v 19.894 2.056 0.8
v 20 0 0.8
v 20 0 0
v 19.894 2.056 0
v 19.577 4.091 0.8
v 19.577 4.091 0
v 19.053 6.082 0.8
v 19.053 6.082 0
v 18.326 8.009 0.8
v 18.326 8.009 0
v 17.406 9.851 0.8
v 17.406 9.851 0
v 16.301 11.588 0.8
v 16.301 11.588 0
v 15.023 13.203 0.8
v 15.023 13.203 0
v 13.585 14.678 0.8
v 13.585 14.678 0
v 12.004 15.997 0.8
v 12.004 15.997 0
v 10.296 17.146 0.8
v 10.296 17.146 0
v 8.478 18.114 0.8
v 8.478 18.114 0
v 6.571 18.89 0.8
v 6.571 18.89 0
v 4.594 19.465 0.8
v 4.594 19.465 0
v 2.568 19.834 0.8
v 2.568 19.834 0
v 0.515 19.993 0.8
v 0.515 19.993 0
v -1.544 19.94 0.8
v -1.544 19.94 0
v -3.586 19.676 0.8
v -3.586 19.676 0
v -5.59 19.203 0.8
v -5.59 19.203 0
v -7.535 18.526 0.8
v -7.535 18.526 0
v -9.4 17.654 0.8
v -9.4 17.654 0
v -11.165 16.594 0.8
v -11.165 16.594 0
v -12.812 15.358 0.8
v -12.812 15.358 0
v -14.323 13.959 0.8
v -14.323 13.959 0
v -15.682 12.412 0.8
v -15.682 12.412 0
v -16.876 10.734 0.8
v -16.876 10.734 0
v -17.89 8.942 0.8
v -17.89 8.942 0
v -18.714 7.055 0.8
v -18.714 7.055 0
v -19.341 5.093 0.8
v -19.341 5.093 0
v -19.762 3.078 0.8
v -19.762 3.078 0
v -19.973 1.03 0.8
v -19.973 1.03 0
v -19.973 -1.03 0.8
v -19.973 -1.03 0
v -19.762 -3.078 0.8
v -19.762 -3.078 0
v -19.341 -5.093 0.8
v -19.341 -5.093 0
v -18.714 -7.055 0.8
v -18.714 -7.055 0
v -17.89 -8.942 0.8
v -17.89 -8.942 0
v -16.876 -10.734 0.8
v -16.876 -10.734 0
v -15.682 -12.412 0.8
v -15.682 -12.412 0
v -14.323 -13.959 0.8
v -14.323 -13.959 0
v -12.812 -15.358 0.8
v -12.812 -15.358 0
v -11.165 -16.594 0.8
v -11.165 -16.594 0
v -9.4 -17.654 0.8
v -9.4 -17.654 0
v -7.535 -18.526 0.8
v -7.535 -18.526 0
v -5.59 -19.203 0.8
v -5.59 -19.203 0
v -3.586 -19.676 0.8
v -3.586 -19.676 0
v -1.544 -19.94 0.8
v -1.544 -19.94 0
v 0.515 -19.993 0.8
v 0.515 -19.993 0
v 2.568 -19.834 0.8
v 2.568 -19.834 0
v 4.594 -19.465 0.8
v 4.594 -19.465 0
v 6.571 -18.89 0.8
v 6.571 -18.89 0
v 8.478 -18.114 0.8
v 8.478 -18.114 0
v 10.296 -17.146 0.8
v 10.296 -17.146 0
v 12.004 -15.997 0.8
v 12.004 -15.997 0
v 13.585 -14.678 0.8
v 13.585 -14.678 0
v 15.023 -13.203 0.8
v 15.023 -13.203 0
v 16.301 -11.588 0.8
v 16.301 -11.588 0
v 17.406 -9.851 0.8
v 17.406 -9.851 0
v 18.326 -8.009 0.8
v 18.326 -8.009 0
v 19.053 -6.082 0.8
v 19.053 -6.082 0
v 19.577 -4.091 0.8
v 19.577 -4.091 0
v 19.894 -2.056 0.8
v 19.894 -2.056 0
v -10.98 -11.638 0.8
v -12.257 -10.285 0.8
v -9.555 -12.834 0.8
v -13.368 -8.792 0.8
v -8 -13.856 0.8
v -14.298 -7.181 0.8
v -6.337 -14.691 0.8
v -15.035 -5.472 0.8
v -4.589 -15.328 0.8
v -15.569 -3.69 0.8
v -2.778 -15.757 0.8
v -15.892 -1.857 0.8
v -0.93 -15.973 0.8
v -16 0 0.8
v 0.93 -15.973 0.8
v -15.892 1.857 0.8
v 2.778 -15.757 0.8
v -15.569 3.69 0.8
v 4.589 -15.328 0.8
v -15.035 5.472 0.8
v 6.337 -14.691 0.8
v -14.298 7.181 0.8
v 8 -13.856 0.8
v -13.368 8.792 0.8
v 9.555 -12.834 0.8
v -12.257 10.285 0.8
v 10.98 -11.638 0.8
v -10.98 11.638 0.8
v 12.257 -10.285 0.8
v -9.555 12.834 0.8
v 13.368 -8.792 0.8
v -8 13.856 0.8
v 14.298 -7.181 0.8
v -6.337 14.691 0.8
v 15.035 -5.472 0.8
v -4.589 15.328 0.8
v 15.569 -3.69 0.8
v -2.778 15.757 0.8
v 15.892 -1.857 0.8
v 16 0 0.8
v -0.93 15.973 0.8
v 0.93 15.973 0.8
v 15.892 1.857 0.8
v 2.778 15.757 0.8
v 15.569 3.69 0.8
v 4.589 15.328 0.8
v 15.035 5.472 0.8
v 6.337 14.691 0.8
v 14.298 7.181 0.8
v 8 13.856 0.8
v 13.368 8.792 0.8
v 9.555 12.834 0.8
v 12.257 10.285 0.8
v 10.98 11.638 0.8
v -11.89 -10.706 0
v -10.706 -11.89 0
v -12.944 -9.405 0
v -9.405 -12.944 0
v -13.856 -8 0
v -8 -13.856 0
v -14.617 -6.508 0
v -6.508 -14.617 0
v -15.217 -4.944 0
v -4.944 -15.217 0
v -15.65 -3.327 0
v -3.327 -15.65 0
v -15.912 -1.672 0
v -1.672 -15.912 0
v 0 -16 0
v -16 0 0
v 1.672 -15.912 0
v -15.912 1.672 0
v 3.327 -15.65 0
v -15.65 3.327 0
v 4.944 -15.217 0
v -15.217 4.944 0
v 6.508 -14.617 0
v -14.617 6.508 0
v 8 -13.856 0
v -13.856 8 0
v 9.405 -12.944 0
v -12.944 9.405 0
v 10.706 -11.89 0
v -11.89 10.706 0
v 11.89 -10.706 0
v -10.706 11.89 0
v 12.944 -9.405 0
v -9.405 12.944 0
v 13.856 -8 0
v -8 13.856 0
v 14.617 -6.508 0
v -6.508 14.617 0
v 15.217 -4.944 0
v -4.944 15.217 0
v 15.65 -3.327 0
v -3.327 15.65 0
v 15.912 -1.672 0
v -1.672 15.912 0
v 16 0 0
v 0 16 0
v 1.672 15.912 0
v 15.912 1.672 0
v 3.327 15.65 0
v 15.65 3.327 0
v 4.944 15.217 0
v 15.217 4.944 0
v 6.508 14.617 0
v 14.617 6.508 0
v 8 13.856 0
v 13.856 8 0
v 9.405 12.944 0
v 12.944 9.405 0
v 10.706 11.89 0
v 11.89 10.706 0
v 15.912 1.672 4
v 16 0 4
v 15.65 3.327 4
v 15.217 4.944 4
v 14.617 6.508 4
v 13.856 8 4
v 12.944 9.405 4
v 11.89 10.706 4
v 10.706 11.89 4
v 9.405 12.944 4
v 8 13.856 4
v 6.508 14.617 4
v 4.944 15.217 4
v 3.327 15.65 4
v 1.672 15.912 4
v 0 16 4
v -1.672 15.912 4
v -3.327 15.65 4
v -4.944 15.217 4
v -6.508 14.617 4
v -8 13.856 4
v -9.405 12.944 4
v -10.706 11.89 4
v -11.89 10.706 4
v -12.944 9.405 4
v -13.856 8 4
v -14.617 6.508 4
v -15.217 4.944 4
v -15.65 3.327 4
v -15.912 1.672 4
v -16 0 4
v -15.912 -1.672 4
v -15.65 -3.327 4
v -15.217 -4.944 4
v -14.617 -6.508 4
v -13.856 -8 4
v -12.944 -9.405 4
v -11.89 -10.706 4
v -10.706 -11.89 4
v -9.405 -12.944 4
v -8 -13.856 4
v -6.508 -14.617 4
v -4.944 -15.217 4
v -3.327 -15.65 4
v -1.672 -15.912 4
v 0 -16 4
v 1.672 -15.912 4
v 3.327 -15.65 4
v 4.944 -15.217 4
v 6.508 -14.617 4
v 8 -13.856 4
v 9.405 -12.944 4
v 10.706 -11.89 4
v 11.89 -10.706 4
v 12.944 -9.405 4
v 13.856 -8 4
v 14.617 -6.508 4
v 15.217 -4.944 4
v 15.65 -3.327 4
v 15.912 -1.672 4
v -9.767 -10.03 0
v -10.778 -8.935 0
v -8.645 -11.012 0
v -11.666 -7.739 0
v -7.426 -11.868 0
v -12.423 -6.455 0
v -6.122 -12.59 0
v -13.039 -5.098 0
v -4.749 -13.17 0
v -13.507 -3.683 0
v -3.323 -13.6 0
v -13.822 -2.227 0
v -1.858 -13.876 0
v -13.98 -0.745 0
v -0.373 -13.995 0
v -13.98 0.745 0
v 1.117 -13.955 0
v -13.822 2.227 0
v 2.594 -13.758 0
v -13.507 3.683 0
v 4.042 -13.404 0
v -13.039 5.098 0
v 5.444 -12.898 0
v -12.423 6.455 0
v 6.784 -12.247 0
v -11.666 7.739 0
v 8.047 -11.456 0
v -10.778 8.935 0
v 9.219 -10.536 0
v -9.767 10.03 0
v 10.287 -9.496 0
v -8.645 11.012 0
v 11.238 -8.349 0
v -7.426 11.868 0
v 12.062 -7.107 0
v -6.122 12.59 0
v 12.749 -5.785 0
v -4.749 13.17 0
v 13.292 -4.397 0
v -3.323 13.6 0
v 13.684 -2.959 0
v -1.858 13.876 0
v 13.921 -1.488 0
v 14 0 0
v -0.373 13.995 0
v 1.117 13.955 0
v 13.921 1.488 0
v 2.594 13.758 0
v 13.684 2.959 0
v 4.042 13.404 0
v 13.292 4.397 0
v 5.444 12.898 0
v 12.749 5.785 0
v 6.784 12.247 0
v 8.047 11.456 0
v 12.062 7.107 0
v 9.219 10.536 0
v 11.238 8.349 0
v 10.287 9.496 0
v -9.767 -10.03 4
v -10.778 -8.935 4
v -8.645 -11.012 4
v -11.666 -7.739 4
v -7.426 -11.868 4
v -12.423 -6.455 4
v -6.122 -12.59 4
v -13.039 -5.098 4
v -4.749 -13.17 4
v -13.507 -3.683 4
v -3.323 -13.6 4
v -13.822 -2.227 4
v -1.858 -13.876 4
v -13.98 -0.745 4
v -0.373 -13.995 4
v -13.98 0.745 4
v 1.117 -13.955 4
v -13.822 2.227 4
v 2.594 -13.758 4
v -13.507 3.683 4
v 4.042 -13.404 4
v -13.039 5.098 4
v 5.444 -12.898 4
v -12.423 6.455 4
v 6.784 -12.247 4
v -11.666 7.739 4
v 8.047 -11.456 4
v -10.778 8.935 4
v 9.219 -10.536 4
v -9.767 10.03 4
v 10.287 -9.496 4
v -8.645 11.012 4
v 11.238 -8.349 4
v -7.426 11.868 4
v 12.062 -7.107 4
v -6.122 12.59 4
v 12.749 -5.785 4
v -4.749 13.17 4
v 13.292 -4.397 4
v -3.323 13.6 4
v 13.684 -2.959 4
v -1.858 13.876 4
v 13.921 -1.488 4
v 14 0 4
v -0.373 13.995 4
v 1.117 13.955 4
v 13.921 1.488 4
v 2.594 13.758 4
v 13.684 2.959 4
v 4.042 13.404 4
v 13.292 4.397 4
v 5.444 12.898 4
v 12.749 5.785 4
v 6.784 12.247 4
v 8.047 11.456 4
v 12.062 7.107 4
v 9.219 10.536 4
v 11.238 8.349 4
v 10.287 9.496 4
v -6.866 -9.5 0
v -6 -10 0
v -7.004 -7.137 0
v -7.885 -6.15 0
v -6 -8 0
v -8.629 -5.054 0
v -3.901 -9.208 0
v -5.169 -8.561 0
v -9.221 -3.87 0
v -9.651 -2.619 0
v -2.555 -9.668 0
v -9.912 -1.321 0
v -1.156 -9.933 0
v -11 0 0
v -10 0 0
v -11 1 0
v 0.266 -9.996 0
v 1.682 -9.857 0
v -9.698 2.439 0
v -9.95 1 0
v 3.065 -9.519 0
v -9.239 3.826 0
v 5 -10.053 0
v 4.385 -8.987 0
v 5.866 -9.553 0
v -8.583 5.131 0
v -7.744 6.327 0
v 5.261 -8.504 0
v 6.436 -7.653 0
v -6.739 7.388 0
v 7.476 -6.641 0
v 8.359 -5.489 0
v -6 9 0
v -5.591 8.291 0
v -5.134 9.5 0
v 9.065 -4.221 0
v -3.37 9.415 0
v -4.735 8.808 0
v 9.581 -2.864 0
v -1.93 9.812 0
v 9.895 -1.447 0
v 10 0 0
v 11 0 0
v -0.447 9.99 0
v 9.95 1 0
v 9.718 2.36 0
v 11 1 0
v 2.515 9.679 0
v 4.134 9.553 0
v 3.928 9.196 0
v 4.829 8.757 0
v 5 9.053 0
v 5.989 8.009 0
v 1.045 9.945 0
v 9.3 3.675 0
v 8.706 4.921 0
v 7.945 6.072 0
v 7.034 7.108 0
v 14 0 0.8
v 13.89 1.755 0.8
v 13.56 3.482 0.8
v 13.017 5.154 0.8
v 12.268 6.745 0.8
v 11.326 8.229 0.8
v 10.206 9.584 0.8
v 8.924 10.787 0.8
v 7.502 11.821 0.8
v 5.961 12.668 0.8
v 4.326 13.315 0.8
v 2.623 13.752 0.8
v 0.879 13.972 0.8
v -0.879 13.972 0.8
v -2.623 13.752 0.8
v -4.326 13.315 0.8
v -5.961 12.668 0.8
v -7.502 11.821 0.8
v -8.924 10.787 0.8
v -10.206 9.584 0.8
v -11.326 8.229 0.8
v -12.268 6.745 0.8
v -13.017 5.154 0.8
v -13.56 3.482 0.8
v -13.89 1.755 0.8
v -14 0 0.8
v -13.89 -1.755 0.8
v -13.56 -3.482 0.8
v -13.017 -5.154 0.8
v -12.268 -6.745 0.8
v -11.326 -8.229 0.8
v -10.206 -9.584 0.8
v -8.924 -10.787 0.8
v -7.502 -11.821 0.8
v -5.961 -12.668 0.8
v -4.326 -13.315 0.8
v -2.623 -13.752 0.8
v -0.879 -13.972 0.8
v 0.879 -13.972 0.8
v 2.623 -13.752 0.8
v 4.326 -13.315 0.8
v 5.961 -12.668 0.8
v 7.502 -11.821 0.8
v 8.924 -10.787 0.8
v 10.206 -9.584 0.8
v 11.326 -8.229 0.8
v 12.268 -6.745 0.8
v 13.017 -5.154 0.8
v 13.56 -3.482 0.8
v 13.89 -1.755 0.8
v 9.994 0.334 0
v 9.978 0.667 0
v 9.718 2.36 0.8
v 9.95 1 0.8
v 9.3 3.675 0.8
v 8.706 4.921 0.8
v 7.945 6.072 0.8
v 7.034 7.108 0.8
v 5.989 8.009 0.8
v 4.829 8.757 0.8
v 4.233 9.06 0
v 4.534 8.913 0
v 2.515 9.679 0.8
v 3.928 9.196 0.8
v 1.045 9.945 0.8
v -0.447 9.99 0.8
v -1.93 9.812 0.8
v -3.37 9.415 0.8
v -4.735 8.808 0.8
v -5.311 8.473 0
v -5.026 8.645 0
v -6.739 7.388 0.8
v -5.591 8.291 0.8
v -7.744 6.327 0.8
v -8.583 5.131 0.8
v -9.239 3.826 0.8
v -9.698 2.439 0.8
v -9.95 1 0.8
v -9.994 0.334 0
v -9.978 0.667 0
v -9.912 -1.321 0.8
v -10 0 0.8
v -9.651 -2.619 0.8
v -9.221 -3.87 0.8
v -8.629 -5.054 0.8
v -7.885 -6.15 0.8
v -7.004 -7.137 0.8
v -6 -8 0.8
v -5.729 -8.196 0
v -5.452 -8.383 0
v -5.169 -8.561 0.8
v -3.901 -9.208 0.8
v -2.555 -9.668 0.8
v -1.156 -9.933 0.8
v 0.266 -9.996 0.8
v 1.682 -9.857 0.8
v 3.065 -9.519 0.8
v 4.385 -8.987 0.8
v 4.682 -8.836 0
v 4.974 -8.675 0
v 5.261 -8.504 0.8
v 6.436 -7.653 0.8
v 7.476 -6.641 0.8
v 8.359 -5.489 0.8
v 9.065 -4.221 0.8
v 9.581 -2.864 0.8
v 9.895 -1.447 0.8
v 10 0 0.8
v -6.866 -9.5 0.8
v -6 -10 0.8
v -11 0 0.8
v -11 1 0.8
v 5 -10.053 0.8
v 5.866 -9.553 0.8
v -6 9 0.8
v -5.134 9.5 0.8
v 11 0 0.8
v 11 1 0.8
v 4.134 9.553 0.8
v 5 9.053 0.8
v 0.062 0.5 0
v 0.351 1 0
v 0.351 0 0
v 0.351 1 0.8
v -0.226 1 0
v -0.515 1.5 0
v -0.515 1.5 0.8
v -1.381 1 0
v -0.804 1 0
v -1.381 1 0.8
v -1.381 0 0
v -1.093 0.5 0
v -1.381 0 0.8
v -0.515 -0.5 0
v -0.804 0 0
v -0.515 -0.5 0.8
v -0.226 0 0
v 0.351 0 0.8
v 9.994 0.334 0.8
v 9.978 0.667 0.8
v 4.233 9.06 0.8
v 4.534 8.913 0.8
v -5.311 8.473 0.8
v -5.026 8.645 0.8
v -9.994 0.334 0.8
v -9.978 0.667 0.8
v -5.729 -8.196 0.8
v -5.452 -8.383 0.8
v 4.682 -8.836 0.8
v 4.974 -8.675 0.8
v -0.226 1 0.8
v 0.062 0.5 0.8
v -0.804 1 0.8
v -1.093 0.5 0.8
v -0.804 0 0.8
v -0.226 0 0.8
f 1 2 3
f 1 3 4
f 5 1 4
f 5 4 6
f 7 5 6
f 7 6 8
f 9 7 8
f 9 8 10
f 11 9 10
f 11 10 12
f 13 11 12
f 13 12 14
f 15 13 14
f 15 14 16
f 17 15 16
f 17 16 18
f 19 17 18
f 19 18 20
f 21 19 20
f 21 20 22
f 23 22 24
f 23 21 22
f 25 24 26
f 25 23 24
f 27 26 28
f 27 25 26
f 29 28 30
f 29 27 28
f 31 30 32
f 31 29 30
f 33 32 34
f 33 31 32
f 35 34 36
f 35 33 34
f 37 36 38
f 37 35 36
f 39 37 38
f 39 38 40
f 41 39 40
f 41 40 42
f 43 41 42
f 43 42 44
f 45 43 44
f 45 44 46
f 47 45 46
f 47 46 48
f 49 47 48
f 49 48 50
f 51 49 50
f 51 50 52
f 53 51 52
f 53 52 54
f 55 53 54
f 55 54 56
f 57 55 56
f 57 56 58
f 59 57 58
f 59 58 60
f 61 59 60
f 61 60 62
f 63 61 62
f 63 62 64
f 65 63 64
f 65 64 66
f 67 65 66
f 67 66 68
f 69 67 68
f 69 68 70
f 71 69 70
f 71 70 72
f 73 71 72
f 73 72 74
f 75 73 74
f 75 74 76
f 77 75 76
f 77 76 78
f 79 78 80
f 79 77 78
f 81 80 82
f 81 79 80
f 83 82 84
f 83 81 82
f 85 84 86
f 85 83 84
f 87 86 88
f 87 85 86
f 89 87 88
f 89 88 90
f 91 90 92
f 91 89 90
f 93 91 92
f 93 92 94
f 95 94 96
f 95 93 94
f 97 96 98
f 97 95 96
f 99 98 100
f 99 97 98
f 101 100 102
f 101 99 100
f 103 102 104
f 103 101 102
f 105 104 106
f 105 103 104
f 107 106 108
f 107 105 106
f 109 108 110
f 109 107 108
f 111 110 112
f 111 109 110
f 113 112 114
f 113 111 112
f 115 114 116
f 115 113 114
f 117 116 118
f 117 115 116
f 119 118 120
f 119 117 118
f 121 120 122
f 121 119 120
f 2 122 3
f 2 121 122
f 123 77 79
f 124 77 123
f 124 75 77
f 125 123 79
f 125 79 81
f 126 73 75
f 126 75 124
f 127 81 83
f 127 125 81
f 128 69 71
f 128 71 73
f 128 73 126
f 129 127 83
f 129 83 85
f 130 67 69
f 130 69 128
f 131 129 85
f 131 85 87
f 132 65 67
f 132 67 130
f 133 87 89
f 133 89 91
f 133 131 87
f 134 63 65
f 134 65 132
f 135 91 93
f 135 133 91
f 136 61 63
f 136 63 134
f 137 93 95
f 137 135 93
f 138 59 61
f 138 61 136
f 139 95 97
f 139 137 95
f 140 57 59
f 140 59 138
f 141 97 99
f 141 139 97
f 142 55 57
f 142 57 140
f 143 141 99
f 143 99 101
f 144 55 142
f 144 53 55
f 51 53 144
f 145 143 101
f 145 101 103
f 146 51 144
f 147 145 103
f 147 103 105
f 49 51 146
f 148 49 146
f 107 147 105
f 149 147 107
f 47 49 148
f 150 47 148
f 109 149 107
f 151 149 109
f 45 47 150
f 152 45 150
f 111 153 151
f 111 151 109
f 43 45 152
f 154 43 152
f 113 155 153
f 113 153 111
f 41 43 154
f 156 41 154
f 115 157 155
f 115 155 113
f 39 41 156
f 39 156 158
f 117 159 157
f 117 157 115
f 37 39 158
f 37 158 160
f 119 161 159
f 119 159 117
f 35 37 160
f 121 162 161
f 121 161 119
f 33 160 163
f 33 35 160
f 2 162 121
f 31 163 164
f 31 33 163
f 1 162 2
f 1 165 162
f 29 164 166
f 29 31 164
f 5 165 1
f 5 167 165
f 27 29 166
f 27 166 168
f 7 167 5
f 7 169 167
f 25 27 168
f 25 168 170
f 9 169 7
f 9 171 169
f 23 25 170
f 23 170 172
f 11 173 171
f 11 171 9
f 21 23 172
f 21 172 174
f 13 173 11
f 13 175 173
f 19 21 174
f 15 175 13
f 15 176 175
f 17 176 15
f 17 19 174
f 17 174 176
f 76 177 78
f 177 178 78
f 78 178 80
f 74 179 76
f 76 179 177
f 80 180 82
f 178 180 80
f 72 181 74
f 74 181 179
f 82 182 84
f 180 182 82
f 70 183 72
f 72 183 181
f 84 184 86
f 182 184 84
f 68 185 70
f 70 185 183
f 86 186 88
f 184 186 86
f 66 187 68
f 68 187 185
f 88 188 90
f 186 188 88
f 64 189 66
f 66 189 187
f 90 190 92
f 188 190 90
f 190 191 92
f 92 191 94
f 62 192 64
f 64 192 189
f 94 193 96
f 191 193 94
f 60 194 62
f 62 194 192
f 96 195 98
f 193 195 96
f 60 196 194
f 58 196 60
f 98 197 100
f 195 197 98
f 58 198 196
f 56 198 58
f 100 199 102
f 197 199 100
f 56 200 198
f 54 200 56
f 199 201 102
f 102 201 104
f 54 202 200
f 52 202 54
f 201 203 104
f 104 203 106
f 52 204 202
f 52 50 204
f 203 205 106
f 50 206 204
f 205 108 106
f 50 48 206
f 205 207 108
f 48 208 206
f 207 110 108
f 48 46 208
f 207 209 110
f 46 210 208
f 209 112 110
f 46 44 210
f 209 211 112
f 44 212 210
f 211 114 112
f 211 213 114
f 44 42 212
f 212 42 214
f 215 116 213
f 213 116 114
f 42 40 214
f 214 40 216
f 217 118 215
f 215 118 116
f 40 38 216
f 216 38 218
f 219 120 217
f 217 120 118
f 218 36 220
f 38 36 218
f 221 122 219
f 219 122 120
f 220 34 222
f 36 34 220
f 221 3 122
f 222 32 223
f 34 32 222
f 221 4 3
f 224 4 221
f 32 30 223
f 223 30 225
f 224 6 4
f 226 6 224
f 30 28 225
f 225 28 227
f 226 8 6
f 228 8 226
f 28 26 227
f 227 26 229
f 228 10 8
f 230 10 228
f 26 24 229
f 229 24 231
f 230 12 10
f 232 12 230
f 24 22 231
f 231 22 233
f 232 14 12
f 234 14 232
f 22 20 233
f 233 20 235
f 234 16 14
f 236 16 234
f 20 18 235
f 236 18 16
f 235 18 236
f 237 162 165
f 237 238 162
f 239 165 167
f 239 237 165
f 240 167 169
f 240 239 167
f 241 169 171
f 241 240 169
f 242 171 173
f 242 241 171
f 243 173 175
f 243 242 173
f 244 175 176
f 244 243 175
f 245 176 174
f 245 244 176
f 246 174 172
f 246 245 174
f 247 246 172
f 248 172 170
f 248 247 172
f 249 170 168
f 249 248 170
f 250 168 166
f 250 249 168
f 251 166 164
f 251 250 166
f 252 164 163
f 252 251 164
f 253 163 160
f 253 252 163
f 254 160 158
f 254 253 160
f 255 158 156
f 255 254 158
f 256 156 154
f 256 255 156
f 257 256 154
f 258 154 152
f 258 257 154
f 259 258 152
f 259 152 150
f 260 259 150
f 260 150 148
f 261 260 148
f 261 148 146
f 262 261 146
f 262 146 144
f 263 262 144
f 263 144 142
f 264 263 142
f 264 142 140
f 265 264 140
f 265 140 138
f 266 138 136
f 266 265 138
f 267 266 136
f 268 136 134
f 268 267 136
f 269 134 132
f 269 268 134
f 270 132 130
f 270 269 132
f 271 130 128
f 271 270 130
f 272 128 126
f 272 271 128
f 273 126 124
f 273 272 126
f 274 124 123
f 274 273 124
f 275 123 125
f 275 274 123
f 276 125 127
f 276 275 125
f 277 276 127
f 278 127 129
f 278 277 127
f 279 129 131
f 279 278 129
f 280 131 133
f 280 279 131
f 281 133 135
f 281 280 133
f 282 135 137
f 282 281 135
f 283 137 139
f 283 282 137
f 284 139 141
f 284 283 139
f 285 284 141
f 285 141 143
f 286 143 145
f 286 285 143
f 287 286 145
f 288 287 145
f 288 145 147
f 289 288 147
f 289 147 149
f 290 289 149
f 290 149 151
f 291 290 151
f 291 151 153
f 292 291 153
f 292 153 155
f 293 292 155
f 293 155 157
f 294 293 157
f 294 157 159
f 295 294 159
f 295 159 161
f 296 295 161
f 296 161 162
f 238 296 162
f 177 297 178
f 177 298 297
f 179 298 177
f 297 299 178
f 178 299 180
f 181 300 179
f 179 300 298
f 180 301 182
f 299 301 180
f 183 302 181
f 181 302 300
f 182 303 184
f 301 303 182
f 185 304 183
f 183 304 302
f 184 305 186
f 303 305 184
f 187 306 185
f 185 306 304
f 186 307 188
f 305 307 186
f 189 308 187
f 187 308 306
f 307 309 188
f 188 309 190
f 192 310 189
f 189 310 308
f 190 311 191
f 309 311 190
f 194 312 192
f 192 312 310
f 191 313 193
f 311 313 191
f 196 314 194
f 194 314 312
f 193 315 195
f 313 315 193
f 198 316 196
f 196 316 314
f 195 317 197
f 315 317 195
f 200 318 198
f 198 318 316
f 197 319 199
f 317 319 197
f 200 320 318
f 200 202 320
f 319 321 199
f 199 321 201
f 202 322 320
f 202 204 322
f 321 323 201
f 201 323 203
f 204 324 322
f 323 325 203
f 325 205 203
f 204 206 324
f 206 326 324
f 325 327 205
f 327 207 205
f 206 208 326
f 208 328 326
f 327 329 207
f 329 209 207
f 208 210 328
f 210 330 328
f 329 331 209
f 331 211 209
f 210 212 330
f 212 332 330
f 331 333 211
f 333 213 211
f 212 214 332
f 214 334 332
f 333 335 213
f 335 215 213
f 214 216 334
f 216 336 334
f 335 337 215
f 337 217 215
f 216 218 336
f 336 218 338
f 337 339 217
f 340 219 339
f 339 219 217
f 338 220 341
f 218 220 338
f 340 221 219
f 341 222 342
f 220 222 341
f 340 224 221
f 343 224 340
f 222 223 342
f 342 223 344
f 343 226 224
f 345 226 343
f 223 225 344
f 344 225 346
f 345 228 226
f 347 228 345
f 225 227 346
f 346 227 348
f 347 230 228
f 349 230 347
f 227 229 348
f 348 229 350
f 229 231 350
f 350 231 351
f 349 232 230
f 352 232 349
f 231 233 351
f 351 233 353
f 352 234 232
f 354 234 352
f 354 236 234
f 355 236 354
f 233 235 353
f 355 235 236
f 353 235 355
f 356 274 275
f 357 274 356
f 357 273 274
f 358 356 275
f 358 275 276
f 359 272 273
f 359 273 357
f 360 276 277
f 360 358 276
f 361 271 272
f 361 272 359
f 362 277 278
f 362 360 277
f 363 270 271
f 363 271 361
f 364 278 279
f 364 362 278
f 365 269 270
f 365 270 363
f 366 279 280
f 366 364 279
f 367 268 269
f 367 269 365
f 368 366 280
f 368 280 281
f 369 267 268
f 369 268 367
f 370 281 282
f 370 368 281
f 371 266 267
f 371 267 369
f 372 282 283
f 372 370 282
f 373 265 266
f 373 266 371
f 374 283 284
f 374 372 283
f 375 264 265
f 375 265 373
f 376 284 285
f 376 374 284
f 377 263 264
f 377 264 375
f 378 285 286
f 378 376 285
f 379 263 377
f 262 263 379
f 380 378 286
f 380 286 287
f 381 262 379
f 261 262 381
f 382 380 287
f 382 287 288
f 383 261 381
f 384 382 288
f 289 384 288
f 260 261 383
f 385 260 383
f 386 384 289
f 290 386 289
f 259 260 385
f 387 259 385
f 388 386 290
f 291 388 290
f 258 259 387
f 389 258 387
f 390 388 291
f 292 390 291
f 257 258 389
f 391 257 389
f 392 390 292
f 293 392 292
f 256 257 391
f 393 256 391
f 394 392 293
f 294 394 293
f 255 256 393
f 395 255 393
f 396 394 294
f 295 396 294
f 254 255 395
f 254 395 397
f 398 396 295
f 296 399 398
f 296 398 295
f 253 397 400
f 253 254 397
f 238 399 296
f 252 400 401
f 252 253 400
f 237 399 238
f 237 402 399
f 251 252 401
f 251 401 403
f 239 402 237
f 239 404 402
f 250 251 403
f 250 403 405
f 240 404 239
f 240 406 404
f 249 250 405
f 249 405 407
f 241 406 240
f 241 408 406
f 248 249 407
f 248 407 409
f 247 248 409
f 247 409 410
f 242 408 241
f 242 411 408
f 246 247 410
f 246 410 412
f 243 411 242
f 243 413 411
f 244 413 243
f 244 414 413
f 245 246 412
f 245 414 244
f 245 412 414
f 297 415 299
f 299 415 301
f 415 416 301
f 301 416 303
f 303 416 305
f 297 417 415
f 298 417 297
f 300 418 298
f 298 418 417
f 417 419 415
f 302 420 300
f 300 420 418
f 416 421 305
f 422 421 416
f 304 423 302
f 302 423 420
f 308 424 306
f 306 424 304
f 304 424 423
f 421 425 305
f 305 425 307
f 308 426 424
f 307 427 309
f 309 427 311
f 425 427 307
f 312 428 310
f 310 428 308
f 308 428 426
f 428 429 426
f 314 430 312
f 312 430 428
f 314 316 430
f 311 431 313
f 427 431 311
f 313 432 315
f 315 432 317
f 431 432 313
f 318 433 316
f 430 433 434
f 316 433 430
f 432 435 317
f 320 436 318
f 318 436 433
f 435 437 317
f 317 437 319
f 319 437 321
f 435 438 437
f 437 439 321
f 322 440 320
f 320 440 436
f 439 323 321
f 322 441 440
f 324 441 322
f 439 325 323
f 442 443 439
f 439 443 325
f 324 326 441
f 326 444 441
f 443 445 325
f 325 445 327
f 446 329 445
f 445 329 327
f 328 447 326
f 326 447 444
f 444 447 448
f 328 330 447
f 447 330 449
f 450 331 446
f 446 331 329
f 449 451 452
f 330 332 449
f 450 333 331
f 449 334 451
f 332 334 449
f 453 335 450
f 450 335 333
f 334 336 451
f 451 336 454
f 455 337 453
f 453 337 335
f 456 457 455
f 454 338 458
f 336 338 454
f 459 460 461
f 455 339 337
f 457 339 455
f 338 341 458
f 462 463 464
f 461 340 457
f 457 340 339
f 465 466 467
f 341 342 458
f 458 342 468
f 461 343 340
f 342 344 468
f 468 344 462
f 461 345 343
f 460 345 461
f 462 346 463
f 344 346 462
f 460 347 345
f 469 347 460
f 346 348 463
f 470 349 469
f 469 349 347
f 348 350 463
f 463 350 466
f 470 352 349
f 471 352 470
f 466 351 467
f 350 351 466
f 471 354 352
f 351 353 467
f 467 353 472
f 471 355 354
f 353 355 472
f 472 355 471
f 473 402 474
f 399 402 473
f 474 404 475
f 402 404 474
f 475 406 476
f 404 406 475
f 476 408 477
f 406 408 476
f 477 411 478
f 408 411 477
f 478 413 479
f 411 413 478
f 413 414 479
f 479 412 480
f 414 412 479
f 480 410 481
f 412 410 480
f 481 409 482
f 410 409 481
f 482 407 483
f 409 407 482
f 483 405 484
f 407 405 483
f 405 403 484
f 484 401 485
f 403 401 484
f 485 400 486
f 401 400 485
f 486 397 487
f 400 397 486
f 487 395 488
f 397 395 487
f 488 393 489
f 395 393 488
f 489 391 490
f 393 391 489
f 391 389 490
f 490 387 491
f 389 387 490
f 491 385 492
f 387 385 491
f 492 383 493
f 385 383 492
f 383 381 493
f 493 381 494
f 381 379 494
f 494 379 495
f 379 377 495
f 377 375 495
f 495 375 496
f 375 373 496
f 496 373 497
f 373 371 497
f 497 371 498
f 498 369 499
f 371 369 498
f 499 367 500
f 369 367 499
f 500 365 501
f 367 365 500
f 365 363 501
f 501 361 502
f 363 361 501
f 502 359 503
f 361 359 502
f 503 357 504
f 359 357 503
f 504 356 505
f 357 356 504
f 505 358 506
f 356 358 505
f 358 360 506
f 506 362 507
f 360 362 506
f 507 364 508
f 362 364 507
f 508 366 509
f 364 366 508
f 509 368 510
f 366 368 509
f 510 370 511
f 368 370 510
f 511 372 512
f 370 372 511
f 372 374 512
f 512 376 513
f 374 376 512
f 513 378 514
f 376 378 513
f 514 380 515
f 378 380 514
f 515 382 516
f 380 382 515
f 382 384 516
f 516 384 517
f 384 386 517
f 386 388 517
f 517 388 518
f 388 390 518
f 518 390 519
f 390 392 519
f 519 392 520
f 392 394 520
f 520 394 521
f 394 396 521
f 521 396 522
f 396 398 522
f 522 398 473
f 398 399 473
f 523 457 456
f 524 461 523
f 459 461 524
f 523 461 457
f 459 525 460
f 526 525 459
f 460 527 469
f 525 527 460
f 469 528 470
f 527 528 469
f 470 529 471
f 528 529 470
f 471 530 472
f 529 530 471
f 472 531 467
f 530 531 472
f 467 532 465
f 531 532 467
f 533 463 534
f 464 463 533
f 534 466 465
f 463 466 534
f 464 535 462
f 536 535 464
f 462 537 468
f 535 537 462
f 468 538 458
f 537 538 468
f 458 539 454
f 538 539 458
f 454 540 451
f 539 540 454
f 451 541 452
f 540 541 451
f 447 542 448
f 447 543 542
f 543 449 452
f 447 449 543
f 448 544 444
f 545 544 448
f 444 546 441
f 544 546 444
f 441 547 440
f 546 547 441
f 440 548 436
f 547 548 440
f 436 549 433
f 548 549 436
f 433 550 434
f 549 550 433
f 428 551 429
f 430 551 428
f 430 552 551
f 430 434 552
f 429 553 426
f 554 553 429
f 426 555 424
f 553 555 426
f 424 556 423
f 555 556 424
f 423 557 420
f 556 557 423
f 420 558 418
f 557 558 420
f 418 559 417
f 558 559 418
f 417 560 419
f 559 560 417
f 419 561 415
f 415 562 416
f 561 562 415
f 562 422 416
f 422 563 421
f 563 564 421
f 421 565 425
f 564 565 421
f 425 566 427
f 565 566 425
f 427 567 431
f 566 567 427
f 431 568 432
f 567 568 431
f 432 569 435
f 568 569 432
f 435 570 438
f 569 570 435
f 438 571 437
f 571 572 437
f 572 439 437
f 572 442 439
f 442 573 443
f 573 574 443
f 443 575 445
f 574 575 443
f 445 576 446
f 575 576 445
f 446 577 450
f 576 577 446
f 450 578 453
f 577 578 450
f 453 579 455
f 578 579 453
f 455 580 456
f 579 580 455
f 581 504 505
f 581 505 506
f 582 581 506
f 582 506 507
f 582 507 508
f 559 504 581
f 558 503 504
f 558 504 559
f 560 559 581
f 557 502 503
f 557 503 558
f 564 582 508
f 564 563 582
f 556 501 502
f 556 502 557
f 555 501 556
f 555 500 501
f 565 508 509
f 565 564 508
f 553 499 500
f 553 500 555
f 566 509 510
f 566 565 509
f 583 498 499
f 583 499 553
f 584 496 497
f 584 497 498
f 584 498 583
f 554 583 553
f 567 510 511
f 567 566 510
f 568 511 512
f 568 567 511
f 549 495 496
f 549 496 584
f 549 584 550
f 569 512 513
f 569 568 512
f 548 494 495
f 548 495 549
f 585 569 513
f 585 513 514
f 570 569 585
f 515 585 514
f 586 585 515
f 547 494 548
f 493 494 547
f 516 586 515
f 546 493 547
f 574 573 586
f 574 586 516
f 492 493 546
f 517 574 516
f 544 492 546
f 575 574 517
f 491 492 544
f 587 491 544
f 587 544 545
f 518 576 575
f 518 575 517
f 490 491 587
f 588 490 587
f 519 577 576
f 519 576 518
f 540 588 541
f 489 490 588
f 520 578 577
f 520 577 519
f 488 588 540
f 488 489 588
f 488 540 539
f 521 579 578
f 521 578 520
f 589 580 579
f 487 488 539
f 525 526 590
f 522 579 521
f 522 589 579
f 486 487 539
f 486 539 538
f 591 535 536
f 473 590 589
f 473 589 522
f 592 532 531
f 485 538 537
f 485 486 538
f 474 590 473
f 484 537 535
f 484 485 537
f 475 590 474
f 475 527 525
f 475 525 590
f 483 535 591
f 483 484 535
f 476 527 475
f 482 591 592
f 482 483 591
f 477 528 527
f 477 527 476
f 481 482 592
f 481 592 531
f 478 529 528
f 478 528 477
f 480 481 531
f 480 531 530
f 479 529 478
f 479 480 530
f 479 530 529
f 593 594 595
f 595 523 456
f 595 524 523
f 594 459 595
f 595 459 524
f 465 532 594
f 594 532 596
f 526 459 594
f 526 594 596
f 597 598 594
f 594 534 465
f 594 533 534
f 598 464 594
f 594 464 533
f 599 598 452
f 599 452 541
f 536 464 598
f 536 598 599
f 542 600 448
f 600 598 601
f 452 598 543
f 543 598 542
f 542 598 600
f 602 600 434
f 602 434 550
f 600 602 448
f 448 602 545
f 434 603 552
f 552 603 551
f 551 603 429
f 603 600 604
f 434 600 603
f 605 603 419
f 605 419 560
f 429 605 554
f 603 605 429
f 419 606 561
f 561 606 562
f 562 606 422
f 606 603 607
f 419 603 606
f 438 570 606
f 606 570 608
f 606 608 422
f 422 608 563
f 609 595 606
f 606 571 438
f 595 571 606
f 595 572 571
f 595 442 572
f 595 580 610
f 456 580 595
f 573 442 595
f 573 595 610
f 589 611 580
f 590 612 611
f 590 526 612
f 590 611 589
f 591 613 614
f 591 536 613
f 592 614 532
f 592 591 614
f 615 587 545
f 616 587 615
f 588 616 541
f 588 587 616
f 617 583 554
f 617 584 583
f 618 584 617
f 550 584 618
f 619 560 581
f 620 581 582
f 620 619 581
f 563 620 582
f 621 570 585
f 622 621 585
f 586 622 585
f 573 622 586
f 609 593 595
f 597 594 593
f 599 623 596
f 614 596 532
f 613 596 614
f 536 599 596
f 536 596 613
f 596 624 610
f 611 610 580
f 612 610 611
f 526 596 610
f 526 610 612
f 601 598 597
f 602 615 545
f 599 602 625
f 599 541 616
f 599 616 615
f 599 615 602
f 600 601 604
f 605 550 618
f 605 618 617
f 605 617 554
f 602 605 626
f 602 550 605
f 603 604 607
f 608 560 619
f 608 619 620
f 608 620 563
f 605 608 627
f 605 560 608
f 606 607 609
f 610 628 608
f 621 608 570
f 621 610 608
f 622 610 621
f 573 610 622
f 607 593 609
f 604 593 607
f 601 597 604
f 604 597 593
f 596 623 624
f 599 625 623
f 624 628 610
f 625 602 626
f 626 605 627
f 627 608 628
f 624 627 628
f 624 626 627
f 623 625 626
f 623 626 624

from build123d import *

# Parameters (mm, degrees)
BOX_W                  = 22
BOX_H                  = 1
BOX_DEPTH              = 0.8
BOX001_W               = 22
BOX001_H               = 1
BOX001_DEPTH           = 0.8
BOX001_PLACEMENT_ANGLE = 60
BOX002_W               = 22
BOX002_H               = 1
BOX002_DEPTH           = 0.8
BOX002_PLACEMENT_ANGLE = -60
CYLINDER003_R          = 14
CYLINDER003_DEPTH      = 4
CYLINDER002_R          = 16
CYLINDER002_DEPTH      = 4
CYLINDER001_R          = 10
CYLINDER001_DEPTH      = 1
CYLINDER_R             = 20
CYLINDER_DEPTH         = 0.8


with BuildPart() as box:
    # Box → Box (new body)
    with BuildSketch(Plane(origin=(-11, 0, 0), x_dir=(1, 0, 0), z_dir=(0, 0, 1))):
        with Locations((11, 0.5)):
            Rectangle(BOX_W, BOX_H)
    extrude(amount=BOX_DEPTH)


with BuildPart() as box001:
    # Box001 → Box001 (new body)
    with BuildSketch(Plane.XY):
        with Locations((11, 0.5)):
            Rectangle(BOX001_W, BOX001_H)
    extrude(amount=BOX001_DEPTH)


with BuildPart() as box001_1:
    # Box001 placement: moved
    add(box001.part.moved(Location((-6, -10, 0))).rotate(Axis((-6, -10, 0), (0, 0, 1)), BOX001_PLACEMENT_ANGLE))


with BuildPart() as box002:
    # Box002 → Box002 (new body)
    with BuildSketch(Plane.XY):
        with Locations((11, 0.5)):
            Rectangle(BOX002_W, BOX002_H)
    extrude(amount=BOX002_DEPTH)


with BuildPart() as box002_1:
    # Box002 placement: moved
    add(box002.part.moved(Location((-6, 9, 0))).rotate(Axis((-6, 9, 0), (0, 0, 1)), BOX002_PLACEMENT_ANGLE))


with BuildPart() as shoulder_in:
    # Cylinder003 → Cylinder003 (new body)
    with BuildSketch(Plane.XY):
        Circle(CYLINDER003_R)
    extrude(amount=CYLINDER003_DEPTH)


with BuildPart() as shoulder:
    # Cylinder002 → Cylinder002 (new body)
    with BuildSketch(Plane.XY):
        Circle(CYLINDER002_R)
    extrude(amount=CYLINDER002_DEPTH)

    # Cut001: cut shoulder_in
    add(shoulder_in.part, mode=Mode.SUBTRACT)


with BuildPart() as hole:
    # Cylinder001 → Cylinder001 (new body)
    with BuildSketch(Plane.XY):
        Circle(CYLINDER001_R)
    extrude(amount=CYLINDER001_DEPTH)


with BuildPart() as bottom:
    # Cylinder → Cylinder (new body)
    with BuildSketch(Plane.XY):
        Circle(CYLINDER_R)
    extrude(amount=CYLINDER_DEPTH)

    # Cut: cut hole
    add(hole.part, mode=Mode.SUBTRACT)

    # Fusion: union Box, Box001, Box002, shoulder
    add(box.part)
    add(box001_1.part)
    add(box002_1.part)
    add(shoulder.part)


solid = bottom.part
